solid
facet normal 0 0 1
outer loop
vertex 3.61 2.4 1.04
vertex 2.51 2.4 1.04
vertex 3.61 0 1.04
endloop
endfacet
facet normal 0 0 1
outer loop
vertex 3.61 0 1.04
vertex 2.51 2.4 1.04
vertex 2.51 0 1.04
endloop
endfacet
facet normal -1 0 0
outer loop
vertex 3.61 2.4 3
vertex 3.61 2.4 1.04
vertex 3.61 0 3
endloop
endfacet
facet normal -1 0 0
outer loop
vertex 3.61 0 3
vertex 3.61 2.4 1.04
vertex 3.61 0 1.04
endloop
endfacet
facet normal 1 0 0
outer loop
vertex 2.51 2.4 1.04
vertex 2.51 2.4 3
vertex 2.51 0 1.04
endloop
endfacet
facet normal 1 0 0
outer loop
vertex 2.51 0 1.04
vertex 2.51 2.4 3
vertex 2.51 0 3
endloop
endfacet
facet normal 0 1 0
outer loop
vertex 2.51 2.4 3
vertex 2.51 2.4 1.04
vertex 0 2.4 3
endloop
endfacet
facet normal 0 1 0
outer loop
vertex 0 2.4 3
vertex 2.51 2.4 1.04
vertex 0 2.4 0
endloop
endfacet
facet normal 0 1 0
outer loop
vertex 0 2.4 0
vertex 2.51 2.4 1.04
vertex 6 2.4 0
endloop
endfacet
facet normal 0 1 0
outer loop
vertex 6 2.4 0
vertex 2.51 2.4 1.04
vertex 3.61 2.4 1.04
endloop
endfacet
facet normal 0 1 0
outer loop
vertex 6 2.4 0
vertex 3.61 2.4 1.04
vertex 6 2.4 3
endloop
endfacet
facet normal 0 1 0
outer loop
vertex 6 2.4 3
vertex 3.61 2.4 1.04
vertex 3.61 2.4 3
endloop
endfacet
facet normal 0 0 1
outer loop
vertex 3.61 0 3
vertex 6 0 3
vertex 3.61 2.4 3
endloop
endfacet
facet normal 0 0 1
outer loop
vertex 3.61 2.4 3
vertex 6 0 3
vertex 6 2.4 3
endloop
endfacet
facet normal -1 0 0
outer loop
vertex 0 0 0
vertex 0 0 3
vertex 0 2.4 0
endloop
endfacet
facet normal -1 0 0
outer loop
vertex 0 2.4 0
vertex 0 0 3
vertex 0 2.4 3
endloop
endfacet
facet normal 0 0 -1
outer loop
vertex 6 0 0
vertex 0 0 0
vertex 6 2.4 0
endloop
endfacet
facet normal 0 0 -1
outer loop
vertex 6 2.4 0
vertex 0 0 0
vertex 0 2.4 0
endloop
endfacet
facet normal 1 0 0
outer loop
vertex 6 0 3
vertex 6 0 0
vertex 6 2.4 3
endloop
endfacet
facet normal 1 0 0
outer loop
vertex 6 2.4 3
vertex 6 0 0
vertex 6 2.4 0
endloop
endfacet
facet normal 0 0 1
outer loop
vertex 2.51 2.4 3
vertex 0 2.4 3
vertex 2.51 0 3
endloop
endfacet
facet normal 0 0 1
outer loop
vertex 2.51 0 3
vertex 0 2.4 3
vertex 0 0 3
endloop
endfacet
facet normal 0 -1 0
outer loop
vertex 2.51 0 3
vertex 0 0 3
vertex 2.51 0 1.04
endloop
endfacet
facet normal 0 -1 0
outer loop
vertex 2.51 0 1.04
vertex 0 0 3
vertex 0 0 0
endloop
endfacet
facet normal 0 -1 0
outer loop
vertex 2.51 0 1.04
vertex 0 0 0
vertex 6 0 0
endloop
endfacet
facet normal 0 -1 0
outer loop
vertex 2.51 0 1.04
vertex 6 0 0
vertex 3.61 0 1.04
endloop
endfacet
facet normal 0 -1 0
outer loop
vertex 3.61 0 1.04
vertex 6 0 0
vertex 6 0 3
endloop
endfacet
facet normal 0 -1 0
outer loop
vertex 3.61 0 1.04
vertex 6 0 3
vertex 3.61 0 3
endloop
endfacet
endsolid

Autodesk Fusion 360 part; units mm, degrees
sketch "Sketch1" plane through (0, 0, 0) normal (0, 1, 0) x (1, 0, 0)
  line L0 (0, 0) -> (6, 0)
  line L1 (6, 0) -> (6, -3)
  line L2 (6, -3) -> (0, -3)
  line L3 (0, -3) -> (0, 0)
  dimension "d1" = 6
  dimension "d2" = 3
extrude "Extrude1" add sketch "Sketch1" along normal blind 2.4
sketch "Sketch2" plane through (0, 0, 0) normal (0, -1, 0) x (1, 0, 0)
  line L0 (6, 3) -> (0, 3)
  line L1 (0, 3) -> (0, 0)
  line L2 (0, 0) -> (6, 0)
  line L3 (6, 0) -> (6, 3)
  line L4 (6, 3) -> (6, 1.04)
  line L5 (6, 3) -> (3.61, 3)
  line L6 (0, 3) -> (2.51, 3)
  line L7 (0, 3) -> (0, 1.04)
  line L8 (2.51, 3) -> (3.61, 3)
  line L9 (3.61, 3) -> (3.61, 1.04)
  line L10 (3.61, 1.04) -> (2.51, 1.04)
  line L11 (2.51, 1.04) -> (2.51, 3)
  dimension "d5" = 1.96
  dimension "d6" = 2.39
  dimension "d7" = 2.51
  dimension "d8" = 1.96
  dimension "d9" = 1.96
extrude "Extrude2" cut sketch "Sketch2" against normal blind 4.6 contours L0 L8 L9 L10 L11
